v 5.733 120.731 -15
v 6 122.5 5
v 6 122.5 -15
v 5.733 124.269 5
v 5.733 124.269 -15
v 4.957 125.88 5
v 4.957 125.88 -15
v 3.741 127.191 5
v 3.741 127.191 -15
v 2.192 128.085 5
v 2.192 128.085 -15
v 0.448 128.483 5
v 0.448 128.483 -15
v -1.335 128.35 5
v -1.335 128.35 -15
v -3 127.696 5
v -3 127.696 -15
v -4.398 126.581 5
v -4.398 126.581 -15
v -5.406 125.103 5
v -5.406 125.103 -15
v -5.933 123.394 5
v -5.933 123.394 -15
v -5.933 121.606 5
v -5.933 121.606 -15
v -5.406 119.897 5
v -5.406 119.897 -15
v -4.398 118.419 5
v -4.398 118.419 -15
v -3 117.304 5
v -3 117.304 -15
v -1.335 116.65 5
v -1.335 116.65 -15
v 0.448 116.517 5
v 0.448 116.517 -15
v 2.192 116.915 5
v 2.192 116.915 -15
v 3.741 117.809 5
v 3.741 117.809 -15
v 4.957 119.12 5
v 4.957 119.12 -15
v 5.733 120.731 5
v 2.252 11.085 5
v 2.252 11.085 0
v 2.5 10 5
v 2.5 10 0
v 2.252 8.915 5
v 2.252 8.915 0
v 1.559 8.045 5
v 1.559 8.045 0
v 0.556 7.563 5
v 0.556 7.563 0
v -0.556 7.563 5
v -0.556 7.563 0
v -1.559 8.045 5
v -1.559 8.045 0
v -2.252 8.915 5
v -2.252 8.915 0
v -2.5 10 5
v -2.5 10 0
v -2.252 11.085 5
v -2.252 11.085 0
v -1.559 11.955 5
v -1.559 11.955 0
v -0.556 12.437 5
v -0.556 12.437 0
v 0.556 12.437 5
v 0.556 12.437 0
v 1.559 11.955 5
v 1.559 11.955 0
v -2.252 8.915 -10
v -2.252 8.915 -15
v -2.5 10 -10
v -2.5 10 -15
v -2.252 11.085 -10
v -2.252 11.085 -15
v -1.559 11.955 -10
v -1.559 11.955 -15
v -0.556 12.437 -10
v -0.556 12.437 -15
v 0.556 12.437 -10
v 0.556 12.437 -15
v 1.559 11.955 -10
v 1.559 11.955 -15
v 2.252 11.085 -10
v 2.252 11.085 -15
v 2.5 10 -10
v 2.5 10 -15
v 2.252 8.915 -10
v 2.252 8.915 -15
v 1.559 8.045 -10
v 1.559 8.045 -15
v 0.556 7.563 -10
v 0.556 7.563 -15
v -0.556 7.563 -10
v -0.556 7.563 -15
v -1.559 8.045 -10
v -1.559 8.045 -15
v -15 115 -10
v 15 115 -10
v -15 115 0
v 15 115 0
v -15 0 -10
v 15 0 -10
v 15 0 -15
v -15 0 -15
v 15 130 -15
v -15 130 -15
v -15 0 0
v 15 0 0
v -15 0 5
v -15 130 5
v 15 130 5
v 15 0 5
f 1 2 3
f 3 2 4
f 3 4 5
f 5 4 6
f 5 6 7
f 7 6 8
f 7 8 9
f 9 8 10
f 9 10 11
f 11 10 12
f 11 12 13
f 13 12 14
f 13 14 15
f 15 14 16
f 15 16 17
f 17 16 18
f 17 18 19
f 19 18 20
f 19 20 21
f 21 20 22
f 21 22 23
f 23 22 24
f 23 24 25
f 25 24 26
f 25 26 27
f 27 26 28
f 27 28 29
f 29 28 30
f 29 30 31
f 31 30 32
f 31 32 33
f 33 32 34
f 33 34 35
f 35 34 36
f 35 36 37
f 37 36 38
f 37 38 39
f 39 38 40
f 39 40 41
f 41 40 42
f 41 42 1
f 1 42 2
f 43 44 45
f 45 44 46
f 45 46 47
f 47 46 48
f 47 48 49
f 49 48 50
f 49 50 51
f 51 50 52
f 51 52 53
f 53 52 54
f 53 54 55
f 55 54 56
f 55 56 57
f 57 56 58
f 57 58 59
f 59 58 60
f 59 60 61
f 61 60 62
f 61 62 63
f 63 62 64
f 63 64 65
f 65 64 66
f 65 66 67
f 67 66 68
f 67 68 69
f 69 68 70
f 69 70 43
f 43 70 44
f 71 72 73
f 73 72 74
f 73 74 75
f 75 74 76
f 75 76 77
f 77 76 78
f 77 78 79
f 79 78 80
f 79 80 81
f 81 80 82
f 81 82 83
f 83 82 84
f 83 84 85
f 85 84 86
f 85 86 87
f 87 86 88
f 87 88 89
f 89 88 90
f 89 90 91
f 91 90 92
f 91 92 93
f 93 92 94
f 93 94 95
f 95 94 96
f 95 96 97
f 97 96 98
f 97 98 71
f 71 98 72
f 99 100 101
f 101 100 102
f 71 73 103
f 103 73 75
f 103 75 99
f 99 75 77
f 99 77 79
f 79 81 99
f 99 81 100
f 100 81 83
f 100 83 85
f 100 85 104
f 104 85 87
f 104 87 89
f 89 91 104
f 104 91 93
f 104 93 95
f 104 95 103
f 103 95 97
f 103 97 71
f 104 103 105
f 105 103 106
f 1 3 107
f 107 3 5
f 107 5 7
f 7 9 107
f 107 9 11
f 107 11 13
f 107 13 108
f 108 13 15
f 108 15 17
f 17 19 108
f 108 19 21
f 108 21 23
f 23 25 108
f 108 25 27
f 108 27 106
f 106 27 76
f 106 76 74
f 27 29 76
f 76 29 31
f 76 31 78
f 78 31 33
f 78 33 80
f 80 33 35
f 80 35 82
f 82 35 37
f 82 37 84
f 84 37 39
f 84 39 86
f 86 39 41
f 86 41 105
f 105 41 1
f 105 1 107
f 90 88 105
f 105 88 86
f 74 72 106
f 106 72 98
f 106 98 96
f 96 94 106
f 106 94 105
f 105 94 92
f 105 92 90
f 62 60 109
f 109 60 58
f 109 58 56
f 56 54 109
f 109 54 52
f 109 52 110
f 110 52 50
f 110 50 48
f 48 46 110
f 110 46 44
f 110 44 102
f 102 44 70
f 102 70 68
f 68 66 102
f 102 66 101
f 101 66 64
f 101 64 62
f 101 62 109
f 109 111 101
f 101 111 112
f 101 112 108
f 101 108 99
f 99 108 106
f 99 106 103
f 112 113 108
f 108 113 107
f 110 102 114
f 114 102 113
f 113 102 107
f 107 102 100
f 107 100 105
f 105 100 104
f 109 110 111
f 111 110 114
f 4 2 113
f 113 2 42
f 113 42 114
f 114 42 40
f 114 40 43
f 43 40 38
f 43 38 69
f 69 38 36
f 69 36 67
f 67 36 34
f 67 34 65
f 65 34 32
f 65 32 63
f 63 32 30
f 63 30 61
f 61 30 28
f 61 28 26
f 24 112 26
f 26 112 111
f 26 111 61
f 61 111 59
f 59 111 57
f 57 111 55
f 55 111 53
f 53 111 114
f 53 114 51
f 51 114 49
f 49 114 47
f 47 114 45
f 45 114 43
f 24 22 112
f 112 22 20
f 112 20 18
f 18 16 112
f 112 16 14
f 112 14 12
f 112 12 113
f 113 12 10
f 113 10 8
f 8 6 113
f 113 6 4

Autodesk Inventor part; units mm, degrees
ref_plane "YZ Plane" through (0, 0, 0) normal (1, 0, 0) x (0, 1, 0)
sketch "Sketch1" plane through (0, 0, 0) normal (0, 0, 1) x (1, 0, 0)
  point P0 (0, 0)
sketch "Sketch2" plane through (0, 0, 0) normal (0, 0, 1) x (1, 0, 0)
  line L0 (-15, 130) -> (15, 130)
  line L1 (15, 130) -> (15, 0)
  line L2 (15, 0) -> (-15, 0)
  line L3 (-15, 0) -> (-15, 130)
  point P0 (0, 0)
  point P1 (0, 0)
  dimension "d0" = 30
  dimension "d1" = 130
extrude "Extrusion1" add sketch "Sketch2" along normal blind 5
ref_plane "Work Plane1" through (0, 0, -10) normal (0, 0, -1) x (-1, 0, 0)
sketch "Sketch4" plane through (0, 0, -10) normal (0, 0, -1) x (-1, 0, 0)
  line L0 (-15, 0) -> (-15, 130) projected
  line L1 (15, 0) -> (-15, 0) projected
  line L2 (-15, 130) -> (15, 130)
  line L3 (15, 130) -> (15, 0)
  line L4 (15, 0) -> (-15, 0)
  line L5 (-15, 0) -> (-15, 130)
  point P0 (0, 0)
extrude "Extrusion3" add sketch "Sketch4" along normal blind 5
sketch "Sketch5" plane through (0, 0, -10) normal (0, 0, 1) x (1, 0, 0)
  line L0 (-15, 130) -> (-15, 0) projected
  line L1 (15, 130) -> (15, 0) projected
  line L2 (-15, 130) -> (15, 130)
  line L3 (15, 130) -> (15, 115)
  line L4 (15, 115) -> (-15, 115)
  line L5 (-15, 115) -> (-15, 130)
  point P0 (0, 0)
  point P1 (15, 130)
  dimension "d12" = 15
extrude "Extrusion4" add sketch "Sketch5" along normal blind 10
sketch "Sketch6" plane through (0, 0, -10) normal (0, 0, 1) x (1, 0, 0)
  circle A0 centre (0, 10) radius 2.5
  line L0 (-15, 0) -> (15, 0) projected
  point P0 (0, 0)
  dimension "d15" = 5
  dimension "d16" = 10
  dimension "d45" = 18.0278
extrude "Extrusion5" cut sketch "Sketch6" along normal blind 15 and the other way blind 5
ref_plane "Work Plane2" through (0, 0, -5) normal (0, 0, 1) x (1, 0, 0)
sketch "Sketch9" plane through (0, 0, 5) normal (0, 0, 1) x (1, 0, 0)
  line L0 (15, 130) -> (-15, 130) projected
  line L1 (15, 0) -> (15, 130) projected
  line L2 (0, 84.3715) -> (0, -83.7026)
  line L3 (-15, 0) -> (15, 0) projected
  line L4 (-15, 122.5) -> (15, 122.5)
  line L5 (-15, 115) -> (15, 115) projected
  circle A0 centre (0, 122.5) radius 6
  point P0 (0, 0)
  point P1 (0, 0)
  dimension "d41" = 7.5
  dimension "d42" = 12
  dimension "d46" = 15
  dimension "d47" = 45.6285
  dimension "d48" = 213.7026
extrude "Extrusion7" cut sketch "Sketch9" against normal blind 20
properties part number "pendel"
